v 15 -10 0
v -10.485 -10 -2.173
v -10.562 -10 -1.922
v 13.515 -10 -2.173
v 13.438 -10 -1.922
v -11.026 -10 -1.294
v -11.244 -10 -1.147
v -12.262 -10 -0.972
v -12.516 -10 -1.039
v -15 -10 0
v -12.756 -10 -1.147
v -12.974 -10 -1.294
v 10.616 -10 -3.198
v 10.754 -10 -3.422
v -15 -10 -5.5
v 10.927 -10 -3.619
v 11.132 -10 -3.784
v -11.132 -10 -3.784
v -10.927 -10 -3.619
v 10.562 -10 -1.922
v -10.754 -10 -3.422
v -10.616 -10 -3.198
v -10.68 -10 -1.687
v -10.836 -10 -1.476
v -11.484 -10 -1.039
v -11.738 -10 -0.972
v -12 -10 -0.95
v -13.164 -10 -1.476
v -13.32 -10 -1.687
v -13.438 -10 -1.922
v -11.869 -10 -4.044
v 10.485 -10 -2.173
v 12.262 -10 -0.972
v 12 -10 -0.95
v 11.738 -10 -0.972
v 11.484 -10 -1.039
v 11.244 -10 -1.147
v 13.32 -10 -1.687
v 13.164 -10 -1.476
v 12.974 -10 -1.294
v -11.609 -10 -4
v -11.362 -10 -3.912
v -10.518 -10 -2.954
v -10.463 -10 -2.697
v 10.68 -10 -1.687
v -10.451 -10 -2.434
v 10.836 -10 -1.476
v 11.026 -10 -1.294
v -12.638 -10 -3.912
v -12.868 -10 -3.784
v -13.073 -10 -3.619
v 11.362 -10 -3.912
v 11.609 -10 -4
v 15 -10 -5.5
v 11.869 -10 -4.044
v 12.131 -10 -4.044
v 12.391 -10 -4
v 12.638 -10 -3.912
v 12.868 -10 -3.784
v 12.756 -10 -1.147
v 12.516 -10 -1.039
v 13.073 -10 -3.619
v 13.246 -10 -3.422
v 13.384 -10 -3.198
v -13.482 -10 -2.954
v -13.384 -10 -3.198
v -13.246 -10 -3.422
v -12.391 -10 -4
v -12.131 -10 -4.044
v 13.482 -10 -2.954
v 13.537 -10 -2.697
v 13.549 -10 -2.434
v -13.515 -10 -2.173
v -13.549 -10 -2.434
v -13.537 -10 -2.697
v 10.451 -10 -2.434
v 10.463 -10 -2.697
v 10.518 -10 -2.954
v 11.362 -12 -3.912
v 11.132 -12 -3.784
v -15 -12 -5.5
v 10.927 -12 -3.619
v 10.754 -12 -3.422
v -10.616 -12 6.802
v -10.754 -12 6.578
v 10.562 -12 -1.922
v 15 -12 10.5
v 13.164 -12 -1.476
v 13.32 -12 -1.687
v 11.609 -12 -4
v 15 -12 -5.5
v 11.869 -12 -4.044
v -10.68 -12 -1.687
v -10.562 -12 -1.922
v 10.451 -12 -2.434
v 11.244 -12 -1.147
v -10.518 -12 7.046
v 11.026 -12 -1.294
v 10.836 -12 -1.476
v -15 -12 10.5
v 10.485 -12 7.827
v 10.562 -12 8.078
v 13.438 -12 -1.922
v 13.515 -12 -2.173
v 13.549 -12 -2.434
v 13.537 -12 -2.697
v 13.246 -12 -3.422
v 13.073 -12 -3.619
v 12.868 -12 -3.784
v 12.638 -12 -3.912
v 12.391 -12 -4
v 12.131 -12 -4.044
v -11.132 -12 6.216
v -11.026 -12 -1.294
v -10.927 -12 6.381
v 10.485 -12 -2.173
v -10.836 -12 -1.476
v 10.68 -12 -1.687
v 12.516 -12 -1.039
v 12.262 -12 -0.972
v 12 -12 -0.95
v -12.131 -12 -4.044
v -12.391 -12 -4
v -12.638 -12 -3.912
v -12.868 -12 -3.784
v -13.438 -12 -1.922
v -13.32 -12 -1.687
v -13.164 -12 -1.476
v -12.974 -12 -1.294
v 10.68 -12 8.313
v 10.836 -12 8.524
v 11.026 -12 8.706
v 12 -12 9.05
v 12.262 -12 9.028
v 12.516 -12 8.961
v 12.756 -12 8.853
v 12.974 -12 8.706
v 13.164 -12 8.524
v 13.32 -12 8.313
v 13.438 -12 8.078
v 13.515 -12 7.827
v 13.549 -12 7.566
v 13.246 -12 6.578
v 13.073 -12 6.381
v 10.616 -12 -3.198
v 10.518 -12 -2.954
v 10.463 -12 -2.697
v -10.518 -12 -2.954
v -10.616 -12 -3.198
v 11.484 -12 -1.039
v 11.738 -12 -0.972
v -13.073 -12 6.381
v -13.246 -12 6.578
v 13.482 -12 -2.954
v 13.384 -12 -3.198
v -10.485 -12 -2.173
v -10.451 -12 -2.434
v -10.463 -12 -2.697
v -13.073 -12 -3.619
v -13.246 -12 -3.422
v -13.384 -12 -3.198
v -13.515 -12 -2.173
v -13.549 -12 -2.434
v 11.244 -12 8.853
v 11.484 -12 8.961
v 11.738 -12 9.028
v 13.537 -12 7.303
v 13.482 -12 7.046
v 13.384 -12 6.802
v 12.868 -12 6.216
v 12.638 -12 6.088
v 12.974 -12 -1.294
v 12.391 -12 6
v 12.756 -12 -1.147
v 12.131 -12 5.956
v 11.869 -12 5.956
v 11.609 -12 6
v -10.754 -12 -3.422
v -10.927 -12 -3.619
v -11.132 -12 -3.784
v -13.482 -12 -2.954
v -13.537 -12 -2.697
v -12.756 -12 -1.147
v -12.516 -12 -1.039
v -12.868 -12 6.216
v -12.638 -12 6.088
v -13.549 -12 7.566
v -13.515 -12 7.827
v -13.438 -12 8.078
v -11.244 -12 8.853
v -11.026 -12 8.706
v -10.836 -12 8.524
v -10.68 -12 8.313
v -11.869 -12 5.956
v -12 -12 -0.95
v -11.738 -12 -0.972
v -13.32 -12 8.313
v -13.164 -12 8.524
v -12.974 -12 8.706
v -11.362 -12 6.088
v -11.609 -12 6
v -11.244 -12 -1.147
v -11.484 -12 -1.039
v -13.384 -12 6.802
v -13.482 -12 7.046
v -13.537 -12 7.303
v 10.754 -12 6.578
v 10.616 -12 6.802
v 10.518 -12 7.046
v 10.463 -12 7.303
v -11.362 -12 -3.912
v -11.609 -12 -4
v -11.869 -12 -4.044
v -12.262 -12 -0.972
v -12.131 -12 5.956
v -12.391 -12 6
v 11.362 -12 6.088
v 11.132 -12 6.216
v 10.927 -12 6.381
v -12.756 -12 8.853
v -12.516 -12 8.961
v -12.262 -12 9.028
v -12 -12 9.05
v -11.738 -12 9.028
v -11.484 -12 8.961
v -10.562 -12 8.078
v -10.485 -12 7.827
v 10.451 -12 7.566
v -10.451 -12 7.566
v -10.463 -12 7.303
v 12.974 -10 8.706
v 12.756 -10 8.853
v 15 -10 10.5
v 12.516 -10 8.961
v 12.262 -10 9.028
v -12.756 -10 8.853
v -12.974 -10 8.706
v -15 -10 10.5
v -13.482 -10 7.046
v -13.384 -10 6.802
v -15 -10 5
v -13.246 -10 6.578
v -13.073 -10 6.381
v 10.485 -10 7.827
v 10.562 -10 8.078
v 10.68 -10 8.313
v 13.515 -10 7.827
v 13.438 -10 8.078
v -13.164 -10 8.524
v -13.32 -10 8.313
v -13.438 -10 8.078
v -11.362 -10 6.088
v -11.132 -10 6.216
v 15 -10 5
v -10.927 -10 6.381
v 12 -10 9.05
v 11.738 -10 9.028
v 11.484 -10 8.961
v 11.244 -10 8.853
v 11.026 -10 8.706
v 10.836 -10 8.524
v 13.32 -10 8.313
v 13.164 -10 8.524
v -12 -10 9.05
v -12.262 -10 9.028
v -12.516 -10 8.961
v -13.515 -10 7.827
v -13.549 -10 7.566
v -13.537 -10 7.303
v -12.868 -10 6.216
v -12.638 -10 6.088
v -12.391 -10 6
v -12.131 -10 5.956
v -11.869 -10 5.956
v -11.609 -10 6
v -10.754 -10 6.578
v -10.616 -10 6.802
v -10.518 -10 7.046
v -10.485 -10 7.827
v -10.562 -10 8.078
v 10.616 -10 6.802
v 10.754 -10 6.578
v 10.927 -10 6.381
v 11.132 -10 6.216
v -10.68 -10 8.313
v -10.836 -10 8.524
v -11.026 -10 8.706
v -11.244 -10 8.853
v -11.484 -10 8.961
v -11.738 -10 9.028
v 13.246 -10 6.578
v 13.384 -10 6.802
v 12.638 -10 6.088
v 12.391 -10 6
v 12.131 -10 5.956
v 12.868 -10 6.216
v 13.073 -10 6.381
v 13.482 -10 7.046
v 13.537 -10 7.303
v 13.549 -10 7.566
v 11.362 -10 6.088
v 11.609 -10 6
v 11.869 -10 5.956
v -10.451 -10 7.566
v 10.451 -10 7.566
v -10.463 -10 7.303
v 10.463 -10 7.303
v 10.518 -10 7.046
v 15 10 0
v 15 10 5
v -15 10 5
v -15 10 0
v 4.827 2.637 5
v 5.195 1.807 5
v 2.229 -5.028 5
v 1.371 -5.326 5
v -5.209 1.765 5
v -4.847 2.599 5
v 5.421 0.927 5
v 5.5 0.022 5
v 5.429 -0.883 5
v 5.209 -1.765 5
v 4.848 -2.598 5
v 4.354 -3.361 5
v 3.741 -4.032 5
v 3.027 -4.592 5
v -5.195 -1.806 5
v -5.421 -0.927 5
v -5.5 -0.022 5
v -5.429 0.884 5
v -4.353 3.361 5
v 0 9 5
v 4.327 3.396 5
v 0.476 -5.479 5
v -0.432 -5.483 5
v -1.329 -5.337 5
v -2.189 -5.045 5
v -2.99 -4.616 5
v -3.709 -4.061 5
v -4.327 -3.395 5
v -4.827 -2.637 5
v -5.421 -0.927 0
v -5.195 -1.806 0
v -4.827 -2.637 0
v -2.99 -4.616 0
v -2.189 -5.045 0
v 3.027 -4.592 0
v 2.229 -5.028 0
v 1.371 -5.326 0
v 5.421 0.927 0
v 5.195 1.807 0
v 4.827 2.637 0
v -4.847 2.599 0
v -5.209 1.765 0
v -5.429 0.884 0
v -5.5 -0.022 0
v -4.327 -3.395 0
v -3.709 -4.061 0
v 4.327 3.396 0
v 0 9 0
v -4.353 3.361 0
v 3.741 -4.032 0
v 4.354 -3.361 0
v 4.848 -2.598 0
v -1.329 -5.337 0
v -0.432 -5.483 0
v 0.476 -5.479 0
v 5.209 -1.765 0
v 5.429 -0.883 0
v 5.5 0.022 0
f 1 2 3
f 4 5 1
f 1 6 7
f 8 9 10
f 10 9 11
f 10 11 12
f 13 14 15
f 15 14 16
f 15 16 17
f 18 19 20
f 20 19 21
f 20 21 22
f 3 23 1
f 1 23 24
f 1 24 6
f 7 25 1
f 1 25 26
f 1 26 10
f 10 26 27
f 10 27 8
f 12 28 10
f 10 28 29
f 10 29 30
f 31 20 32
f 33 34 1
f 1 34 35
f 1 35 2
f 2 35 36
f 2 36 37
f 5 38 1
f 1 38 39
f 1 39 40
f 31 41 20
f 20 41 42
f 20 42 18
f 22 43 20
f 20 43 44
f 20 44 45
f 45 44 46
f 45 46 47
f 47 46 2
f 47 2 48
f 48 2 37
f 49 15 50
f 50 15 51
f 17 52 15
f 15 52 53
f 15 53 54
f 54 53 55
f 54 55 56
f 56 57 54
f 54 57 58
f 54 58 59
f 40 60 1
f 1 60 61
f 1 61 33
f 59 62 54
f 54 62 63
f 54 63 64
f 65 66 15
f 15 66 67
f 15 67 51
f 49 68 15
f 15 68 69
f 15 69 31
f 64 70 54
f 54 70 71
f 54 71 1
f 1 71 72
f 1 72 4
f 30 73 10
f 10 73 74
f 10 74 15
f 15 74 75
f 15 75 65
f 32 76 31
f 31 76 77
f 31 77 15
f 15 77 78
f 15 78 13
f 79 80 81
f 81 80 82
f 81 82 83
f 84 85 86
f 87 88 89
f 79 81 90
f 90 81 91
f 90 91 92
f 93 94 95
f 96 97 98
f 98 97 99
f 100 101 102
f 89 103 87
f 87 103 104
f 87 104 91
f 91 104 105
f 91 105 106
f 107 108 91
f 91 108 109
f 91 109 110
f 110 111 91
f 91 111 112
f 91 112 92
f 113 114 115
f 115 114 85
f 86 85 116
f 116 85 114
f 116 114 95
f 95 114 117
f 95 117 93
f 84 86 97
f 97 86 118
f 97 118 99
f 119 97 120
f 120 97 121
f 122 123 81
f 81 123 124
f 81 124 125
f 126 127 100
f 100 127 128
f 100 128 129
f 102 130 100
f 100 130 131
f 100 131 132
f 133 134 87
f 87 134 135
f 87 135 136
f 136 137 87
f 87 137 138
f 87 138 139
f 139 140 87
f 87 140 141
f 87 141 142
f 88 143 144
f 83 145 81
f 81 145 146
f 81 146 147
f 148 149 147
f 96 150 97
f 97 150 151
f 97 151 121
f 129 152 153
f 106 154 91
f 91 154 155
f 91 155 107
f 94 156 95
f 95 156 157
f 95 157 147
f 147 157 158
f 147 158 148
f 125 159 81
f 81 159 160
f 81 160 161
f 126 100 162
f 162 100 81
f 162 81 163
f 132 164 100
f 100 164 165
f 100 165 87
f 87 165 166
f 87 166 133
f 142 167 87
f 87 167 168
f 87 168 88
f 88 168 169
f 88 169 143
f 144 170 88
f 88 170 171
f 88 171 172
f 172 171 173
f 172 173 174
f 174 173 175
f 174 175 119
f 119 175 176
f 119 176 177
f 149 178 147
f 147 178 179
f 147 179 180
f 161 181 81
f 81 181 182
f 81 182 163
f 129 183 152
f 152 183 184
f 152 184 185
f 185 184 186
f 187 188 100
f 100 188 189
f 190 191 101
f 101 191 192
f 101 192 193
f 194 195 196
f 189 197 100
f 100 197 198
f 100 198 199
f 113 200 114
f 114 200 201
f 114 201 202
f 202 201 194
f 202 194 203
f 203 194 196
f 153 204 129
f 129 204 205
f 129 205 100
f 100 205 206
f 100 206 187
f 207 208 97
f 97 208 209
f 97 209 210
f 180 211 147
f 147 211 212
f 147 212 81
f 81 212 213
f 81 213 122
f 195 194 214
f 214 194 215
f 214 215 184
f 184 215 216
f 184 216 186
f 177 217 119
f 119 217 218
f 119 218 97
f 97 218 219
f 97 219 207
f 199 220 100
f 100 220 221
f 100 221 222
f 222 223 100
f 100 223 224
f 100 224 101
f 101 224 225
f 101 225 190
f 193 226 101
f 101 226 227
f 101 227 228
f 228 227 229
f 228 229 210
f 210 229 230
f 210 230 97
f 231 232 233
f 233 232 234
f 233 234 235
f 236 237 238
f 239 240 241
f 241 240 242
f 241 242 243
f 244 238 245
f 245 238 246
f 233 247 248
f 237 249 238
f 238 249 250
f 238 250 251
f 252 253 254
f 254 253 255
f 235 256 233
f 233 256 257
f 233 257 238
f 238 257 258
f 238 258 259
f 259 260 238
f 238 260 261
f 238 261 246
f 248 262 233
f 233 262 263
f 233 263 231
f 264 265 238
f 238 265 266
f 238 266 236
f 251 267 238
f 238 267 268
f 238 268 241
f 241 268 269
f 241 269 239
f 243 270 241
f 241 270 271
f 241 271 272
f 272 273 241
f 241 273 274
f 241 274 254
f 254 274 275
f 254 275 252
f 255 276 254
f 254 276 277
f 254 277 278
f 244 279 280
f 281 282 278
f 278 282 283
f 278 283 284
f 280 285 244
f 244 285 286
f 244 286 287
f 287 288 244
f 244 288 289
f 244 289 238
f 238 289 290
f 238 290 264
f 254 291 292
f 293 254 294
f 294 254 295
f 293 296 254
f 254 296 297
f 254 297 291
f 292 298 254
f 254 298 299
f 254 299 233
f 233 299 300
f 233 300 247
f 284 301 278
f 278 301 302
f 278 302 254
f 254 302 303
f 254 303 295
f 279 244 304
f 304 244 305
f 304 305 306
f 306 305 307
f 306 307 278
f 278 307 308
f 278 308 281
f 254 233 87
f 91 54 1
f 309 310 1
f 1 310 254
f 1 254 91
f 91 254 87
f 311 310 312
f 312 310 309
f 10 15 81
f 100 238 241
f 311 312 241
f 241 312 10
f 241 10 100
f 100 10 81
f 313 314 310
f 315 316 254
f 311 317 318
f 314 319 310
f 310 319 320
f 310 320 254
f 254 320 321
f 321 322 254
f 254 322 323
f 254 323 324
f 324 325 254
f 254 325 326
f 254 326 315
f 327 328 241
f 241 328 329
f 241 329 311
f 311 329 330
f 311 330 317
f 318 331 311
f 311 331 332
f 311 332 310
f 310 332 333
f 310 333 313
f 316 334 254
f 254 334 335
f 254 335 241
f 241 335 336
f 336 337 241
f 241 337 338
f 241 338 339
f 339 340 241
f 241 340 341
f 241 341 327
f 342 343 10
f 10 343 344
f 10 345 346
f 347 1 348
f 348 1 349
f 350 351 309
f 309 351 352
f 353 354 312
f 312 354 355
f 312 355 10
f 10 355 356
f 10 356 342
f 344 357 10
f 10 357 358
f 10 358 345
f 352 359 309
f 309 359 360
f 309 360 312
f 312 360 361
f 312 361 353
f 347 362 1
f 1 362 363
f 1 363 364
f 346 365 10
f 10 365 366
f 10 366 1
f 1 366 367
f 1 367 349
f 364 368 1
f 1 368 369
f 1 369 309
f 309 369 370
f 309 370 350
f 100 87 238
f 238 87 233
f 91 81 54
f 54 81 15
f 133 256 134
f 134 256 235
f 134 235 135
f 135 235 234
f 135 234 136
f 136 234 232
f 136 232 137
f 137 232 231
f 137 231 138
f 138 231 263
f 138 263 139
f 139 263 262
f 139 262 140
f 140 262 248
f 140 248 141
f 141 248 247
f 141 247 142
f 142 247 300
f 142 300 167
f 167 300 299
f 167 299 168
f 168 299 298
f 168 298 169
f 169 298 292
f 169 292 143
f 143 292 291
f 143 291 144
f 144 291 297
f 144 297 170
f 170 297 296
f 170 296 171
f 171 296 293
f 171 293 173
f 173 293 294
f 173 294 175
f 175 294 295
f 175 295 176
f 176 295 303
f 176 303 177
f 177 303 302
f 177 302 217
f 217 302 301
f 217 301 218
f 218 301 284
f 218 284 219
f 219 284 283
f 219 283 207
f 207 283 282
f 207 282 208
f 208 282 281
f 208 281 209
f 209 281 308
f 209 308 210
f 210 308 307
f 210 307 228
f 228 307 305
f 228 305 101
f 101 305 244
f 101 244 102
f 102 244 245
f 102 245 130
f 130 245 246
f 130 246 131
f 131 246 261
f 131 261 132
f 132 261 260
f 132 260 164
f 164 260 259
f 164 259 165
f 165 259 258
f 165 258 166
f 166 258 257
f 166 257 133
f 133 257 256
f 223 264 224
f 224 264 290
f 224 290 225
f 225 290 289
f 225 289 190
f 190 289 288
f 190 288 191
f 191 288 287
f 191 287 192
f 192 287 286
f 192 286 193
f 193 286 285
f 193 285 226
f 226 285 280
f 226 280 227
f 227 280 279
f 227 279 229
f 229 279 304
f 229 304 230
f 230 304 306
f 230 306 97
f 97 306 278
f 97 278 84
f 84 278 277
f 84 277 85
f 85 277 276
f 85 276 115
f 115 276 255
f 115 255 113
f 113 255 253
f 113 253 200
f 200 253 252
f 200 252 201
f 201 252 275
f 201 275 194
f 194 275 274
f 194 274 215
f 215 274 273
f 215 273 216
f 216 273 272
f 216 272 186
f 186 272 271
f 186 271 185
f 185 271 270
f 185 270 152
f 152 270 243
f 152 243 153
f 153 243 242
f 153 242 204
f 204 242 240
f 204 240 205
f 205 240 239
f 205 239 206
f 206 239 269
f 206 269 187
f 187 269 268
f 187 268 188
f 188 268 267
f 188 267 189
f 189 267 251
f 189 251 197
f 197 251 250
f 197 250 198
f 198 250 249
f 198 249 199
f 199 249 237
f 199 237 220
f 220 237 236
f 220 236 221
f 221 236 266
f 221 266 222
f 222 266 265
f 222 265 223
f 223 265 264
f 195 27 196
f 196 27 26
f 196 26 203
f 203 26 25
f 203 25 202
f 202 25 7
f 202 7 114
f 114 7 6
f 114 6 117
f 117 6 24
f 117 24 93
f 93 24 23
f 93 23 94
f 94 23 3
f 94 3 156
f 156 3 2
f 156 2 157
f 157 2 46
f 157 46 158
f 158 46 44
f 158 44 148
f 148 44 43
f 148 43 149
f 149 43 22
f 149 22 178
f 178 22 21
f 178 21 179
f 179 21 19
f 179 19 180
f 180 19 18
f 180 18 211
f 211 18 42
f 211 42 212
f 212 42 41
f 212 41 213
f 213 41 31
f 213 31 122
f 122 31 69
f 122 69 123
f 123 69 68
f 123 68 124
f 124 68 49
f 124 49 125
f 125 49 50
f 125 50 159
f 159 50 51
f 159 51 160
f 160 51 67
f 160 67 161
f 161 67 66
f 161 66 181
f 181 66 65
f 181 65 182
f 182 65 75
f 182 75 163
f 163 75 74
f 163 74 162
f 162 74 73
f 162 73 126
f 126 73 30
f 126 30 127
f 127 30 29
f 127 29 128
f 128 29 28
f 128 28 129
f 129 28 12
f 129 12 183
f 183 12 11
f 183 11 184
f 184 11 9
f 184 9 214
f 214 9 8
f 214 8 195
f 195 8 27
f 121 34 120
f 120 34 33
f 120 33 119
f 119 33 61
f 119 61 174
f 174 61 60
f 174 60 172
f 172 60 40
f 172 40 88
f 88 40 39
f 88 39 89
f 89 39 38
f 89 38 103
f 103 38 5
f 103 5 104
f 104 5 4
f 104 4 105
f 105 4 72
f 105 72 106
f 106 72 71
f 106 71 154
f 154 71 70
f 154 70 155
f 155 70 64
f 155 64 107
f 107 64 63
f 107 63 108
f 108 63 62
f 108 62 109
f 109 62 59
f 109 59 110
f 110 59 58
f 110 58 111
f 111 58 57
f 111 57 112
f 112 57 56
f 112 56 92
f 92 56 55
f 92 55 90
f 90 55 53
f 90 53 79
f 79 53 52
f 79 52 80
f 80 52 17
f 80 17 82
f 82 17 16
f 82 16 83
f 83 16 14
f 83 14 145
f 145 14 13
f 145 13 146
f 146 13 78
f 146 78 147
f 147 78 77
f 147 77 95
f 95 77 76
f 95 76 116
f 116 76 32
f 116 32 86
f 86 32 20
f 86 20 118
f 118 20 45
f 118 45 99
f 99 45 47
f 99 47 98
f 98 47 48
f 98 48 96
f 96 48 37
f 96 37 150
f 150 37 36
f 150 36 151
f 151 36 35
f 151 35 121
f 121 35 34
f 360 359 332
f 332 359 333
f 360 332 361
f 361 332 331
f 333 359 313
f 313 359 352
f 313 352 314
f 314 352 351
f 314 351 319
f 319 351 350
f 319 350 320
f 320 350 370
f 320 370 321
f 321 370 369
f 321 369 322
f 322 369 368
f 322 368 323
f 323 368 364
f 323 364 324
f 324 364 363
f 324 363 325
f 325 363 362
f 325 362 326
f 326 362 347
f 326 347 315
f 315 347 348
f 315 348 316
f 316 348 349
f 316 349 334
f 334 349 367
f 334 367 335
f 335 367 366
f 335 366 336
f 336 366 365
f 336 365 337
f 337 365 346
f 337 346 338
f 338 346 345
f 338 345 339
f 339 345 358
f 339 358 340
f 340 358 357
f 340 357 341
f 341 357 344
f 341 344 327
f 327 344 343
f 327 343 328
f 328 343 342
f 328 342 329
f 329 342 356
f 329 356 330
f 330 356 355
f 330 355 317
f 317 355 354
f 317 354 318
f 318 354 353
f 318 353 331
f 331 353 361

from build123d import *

# Parameters (mm, degrees)
EXTRUDE_1_DEPTH     = 5
SKETCH_2_W          = 15
SKETCH_2_H          = 5
EXTRUDE_3_DEPTH     = 2
SKETCH_4_R          = 1.55
CUT_EXTRUDE_1_DEPTH = 2
SKETCH_7_R          = 5.5
CUT_EXTRUDE_7_DEPTH = 10


with BuildPart() as part:
    # 草图1 → 凸台-拉伸1 (new body)
    with BuildSketch(Plane.XY):
        Polygon((15, 10), (0, 10), (-15, 10), (-15, -10), (15, -10), align=None)
        with BuildLine():
            Line((-4.044639437, 3.577833398), (0, 8.150214535))
            Line((0, 8.150214535), (4.04465135, 3.577819931))
            ThreePointArc((4.04465135, 3.577819931), (5.049807783, 1.912966637), (5.4, 0))
            ThreePointArc((5.4, 0), (-1.912975044, -5.049804598), (-4.044639437, 3.577833398))
        make_face(mode=Mode.SUBTRACT)
    extrude(amount=EXTRUDE_1_DEPTH)

    # 草图2 → 凸台-拉伸3 (add)
    with BuildSketch(Plane.XZ.offset(10)):
        Polygon((15, 0), (0, 0), (-15, 0), (-15, -5.5), (15, -5.5), align=None)
        Polygon((-15, 5), (0, 5), (15, 5), (15, 10.5), (-15, 10.5), align=None)
        with Locations((-7.5, 2.5)):
            Rectangle(SKETCH_2_W, SKETCH_2_H)
        with Locations((7.5, 2.5)):
            Rectangle(SKETCH_2_W, SKETCH_2_H)
    extrude(amount=EXTRUDE_3_DEPTH)

    # 草图4 → 切除-拉伸1 (cut)
    with BuildSketch(Plane(origin=(0, -10, 0), x_dir=(1, 0, 0), z_dir=(0, 1, 0))):
        with BuildLine():
            ThreePointArc((-10.45, 2.5), (-10.903984489, 3.596015511), (-12, 4.05))
            Line((-12, 4.05), (-12, 2.5))
            Line((-12, 2.5), (-13.55, 2.5))
            ThreePointArc((-13.55, 2.5), (-12, 0.95), (-10.45, 2.5))
        make_face()
        with BuildLine():
            Line((-12, 2.5), (-12, 4.05))
            ThreePointArc((-12, 4.05), (-13.096015511, 3.596015511), (-13.55, 2.5))
            Line((-13.55, 2.5), (-12, 2.5))
        make_face()
        with Locations(Location((12, 2.5, 0), (0, 0, 270))):
            Circle(SKETCH_4_R)
        with Locations(Location((12, -7.5, 0), (0, 0, 270))):
            Circle(SKETCH_4_R)
        with Locations(Location((-12, -7.5, 0), (0, 0, 270))):
            Circle(SKETCH_4_R)
    extrude(amount=-CUT_EXTRUDE_1_DEPTH, mode=Mode.SUBTRACT)

    # 草图7 → 切除-拉伸7 (cut)
    with BuildSketch(Plane(origin=(0, 0, 0), x_dir=(-1, 0, 0), z_dir=(0, 0, -1))):
        with BuildLine():
            Line((-3.352919189, 4.359808816), (0, 8.150214535))
            Line((0, 8.150214535), (0, 9))
            Line((0, 9), (-4.326606057, 3.395656052))
            ThreePointArc((-4.326606057, 3.395656052), (-3.869906283, 3.908174172), (-3.352919189, 4.359808816))
        make_face()
        with BuildLine():
            Line((0, 9), (0, 8.150214535))
            Line((0, 8.150214535), (3.352919189, 4.359808816))
            ThreePointArc((3.352919189, 4.359808816), (3.885429206, 3.89274195), (4.353496537, 3.361111111))
            Line((4.353496537, 3.361111111), (0, 9))
        make_face()
        Circle(SKETCH_7_R)
        with BuildLine():
            Line((0, 8.150214535), (4.044639437, 3.577833398))
            ThreePointArc((4.044639437, 3.577833398), (8.99e-06, -5.4), (-4.04465135, 3.577819931))
            Line((-4.04465135, 3.577819931), (0, 8.150214535))
        make_face()
    extrude(amount=-CUT_EXTRUDE_7_DEPTH, mode=Mode.SUBTRACT)


solid = part.part
